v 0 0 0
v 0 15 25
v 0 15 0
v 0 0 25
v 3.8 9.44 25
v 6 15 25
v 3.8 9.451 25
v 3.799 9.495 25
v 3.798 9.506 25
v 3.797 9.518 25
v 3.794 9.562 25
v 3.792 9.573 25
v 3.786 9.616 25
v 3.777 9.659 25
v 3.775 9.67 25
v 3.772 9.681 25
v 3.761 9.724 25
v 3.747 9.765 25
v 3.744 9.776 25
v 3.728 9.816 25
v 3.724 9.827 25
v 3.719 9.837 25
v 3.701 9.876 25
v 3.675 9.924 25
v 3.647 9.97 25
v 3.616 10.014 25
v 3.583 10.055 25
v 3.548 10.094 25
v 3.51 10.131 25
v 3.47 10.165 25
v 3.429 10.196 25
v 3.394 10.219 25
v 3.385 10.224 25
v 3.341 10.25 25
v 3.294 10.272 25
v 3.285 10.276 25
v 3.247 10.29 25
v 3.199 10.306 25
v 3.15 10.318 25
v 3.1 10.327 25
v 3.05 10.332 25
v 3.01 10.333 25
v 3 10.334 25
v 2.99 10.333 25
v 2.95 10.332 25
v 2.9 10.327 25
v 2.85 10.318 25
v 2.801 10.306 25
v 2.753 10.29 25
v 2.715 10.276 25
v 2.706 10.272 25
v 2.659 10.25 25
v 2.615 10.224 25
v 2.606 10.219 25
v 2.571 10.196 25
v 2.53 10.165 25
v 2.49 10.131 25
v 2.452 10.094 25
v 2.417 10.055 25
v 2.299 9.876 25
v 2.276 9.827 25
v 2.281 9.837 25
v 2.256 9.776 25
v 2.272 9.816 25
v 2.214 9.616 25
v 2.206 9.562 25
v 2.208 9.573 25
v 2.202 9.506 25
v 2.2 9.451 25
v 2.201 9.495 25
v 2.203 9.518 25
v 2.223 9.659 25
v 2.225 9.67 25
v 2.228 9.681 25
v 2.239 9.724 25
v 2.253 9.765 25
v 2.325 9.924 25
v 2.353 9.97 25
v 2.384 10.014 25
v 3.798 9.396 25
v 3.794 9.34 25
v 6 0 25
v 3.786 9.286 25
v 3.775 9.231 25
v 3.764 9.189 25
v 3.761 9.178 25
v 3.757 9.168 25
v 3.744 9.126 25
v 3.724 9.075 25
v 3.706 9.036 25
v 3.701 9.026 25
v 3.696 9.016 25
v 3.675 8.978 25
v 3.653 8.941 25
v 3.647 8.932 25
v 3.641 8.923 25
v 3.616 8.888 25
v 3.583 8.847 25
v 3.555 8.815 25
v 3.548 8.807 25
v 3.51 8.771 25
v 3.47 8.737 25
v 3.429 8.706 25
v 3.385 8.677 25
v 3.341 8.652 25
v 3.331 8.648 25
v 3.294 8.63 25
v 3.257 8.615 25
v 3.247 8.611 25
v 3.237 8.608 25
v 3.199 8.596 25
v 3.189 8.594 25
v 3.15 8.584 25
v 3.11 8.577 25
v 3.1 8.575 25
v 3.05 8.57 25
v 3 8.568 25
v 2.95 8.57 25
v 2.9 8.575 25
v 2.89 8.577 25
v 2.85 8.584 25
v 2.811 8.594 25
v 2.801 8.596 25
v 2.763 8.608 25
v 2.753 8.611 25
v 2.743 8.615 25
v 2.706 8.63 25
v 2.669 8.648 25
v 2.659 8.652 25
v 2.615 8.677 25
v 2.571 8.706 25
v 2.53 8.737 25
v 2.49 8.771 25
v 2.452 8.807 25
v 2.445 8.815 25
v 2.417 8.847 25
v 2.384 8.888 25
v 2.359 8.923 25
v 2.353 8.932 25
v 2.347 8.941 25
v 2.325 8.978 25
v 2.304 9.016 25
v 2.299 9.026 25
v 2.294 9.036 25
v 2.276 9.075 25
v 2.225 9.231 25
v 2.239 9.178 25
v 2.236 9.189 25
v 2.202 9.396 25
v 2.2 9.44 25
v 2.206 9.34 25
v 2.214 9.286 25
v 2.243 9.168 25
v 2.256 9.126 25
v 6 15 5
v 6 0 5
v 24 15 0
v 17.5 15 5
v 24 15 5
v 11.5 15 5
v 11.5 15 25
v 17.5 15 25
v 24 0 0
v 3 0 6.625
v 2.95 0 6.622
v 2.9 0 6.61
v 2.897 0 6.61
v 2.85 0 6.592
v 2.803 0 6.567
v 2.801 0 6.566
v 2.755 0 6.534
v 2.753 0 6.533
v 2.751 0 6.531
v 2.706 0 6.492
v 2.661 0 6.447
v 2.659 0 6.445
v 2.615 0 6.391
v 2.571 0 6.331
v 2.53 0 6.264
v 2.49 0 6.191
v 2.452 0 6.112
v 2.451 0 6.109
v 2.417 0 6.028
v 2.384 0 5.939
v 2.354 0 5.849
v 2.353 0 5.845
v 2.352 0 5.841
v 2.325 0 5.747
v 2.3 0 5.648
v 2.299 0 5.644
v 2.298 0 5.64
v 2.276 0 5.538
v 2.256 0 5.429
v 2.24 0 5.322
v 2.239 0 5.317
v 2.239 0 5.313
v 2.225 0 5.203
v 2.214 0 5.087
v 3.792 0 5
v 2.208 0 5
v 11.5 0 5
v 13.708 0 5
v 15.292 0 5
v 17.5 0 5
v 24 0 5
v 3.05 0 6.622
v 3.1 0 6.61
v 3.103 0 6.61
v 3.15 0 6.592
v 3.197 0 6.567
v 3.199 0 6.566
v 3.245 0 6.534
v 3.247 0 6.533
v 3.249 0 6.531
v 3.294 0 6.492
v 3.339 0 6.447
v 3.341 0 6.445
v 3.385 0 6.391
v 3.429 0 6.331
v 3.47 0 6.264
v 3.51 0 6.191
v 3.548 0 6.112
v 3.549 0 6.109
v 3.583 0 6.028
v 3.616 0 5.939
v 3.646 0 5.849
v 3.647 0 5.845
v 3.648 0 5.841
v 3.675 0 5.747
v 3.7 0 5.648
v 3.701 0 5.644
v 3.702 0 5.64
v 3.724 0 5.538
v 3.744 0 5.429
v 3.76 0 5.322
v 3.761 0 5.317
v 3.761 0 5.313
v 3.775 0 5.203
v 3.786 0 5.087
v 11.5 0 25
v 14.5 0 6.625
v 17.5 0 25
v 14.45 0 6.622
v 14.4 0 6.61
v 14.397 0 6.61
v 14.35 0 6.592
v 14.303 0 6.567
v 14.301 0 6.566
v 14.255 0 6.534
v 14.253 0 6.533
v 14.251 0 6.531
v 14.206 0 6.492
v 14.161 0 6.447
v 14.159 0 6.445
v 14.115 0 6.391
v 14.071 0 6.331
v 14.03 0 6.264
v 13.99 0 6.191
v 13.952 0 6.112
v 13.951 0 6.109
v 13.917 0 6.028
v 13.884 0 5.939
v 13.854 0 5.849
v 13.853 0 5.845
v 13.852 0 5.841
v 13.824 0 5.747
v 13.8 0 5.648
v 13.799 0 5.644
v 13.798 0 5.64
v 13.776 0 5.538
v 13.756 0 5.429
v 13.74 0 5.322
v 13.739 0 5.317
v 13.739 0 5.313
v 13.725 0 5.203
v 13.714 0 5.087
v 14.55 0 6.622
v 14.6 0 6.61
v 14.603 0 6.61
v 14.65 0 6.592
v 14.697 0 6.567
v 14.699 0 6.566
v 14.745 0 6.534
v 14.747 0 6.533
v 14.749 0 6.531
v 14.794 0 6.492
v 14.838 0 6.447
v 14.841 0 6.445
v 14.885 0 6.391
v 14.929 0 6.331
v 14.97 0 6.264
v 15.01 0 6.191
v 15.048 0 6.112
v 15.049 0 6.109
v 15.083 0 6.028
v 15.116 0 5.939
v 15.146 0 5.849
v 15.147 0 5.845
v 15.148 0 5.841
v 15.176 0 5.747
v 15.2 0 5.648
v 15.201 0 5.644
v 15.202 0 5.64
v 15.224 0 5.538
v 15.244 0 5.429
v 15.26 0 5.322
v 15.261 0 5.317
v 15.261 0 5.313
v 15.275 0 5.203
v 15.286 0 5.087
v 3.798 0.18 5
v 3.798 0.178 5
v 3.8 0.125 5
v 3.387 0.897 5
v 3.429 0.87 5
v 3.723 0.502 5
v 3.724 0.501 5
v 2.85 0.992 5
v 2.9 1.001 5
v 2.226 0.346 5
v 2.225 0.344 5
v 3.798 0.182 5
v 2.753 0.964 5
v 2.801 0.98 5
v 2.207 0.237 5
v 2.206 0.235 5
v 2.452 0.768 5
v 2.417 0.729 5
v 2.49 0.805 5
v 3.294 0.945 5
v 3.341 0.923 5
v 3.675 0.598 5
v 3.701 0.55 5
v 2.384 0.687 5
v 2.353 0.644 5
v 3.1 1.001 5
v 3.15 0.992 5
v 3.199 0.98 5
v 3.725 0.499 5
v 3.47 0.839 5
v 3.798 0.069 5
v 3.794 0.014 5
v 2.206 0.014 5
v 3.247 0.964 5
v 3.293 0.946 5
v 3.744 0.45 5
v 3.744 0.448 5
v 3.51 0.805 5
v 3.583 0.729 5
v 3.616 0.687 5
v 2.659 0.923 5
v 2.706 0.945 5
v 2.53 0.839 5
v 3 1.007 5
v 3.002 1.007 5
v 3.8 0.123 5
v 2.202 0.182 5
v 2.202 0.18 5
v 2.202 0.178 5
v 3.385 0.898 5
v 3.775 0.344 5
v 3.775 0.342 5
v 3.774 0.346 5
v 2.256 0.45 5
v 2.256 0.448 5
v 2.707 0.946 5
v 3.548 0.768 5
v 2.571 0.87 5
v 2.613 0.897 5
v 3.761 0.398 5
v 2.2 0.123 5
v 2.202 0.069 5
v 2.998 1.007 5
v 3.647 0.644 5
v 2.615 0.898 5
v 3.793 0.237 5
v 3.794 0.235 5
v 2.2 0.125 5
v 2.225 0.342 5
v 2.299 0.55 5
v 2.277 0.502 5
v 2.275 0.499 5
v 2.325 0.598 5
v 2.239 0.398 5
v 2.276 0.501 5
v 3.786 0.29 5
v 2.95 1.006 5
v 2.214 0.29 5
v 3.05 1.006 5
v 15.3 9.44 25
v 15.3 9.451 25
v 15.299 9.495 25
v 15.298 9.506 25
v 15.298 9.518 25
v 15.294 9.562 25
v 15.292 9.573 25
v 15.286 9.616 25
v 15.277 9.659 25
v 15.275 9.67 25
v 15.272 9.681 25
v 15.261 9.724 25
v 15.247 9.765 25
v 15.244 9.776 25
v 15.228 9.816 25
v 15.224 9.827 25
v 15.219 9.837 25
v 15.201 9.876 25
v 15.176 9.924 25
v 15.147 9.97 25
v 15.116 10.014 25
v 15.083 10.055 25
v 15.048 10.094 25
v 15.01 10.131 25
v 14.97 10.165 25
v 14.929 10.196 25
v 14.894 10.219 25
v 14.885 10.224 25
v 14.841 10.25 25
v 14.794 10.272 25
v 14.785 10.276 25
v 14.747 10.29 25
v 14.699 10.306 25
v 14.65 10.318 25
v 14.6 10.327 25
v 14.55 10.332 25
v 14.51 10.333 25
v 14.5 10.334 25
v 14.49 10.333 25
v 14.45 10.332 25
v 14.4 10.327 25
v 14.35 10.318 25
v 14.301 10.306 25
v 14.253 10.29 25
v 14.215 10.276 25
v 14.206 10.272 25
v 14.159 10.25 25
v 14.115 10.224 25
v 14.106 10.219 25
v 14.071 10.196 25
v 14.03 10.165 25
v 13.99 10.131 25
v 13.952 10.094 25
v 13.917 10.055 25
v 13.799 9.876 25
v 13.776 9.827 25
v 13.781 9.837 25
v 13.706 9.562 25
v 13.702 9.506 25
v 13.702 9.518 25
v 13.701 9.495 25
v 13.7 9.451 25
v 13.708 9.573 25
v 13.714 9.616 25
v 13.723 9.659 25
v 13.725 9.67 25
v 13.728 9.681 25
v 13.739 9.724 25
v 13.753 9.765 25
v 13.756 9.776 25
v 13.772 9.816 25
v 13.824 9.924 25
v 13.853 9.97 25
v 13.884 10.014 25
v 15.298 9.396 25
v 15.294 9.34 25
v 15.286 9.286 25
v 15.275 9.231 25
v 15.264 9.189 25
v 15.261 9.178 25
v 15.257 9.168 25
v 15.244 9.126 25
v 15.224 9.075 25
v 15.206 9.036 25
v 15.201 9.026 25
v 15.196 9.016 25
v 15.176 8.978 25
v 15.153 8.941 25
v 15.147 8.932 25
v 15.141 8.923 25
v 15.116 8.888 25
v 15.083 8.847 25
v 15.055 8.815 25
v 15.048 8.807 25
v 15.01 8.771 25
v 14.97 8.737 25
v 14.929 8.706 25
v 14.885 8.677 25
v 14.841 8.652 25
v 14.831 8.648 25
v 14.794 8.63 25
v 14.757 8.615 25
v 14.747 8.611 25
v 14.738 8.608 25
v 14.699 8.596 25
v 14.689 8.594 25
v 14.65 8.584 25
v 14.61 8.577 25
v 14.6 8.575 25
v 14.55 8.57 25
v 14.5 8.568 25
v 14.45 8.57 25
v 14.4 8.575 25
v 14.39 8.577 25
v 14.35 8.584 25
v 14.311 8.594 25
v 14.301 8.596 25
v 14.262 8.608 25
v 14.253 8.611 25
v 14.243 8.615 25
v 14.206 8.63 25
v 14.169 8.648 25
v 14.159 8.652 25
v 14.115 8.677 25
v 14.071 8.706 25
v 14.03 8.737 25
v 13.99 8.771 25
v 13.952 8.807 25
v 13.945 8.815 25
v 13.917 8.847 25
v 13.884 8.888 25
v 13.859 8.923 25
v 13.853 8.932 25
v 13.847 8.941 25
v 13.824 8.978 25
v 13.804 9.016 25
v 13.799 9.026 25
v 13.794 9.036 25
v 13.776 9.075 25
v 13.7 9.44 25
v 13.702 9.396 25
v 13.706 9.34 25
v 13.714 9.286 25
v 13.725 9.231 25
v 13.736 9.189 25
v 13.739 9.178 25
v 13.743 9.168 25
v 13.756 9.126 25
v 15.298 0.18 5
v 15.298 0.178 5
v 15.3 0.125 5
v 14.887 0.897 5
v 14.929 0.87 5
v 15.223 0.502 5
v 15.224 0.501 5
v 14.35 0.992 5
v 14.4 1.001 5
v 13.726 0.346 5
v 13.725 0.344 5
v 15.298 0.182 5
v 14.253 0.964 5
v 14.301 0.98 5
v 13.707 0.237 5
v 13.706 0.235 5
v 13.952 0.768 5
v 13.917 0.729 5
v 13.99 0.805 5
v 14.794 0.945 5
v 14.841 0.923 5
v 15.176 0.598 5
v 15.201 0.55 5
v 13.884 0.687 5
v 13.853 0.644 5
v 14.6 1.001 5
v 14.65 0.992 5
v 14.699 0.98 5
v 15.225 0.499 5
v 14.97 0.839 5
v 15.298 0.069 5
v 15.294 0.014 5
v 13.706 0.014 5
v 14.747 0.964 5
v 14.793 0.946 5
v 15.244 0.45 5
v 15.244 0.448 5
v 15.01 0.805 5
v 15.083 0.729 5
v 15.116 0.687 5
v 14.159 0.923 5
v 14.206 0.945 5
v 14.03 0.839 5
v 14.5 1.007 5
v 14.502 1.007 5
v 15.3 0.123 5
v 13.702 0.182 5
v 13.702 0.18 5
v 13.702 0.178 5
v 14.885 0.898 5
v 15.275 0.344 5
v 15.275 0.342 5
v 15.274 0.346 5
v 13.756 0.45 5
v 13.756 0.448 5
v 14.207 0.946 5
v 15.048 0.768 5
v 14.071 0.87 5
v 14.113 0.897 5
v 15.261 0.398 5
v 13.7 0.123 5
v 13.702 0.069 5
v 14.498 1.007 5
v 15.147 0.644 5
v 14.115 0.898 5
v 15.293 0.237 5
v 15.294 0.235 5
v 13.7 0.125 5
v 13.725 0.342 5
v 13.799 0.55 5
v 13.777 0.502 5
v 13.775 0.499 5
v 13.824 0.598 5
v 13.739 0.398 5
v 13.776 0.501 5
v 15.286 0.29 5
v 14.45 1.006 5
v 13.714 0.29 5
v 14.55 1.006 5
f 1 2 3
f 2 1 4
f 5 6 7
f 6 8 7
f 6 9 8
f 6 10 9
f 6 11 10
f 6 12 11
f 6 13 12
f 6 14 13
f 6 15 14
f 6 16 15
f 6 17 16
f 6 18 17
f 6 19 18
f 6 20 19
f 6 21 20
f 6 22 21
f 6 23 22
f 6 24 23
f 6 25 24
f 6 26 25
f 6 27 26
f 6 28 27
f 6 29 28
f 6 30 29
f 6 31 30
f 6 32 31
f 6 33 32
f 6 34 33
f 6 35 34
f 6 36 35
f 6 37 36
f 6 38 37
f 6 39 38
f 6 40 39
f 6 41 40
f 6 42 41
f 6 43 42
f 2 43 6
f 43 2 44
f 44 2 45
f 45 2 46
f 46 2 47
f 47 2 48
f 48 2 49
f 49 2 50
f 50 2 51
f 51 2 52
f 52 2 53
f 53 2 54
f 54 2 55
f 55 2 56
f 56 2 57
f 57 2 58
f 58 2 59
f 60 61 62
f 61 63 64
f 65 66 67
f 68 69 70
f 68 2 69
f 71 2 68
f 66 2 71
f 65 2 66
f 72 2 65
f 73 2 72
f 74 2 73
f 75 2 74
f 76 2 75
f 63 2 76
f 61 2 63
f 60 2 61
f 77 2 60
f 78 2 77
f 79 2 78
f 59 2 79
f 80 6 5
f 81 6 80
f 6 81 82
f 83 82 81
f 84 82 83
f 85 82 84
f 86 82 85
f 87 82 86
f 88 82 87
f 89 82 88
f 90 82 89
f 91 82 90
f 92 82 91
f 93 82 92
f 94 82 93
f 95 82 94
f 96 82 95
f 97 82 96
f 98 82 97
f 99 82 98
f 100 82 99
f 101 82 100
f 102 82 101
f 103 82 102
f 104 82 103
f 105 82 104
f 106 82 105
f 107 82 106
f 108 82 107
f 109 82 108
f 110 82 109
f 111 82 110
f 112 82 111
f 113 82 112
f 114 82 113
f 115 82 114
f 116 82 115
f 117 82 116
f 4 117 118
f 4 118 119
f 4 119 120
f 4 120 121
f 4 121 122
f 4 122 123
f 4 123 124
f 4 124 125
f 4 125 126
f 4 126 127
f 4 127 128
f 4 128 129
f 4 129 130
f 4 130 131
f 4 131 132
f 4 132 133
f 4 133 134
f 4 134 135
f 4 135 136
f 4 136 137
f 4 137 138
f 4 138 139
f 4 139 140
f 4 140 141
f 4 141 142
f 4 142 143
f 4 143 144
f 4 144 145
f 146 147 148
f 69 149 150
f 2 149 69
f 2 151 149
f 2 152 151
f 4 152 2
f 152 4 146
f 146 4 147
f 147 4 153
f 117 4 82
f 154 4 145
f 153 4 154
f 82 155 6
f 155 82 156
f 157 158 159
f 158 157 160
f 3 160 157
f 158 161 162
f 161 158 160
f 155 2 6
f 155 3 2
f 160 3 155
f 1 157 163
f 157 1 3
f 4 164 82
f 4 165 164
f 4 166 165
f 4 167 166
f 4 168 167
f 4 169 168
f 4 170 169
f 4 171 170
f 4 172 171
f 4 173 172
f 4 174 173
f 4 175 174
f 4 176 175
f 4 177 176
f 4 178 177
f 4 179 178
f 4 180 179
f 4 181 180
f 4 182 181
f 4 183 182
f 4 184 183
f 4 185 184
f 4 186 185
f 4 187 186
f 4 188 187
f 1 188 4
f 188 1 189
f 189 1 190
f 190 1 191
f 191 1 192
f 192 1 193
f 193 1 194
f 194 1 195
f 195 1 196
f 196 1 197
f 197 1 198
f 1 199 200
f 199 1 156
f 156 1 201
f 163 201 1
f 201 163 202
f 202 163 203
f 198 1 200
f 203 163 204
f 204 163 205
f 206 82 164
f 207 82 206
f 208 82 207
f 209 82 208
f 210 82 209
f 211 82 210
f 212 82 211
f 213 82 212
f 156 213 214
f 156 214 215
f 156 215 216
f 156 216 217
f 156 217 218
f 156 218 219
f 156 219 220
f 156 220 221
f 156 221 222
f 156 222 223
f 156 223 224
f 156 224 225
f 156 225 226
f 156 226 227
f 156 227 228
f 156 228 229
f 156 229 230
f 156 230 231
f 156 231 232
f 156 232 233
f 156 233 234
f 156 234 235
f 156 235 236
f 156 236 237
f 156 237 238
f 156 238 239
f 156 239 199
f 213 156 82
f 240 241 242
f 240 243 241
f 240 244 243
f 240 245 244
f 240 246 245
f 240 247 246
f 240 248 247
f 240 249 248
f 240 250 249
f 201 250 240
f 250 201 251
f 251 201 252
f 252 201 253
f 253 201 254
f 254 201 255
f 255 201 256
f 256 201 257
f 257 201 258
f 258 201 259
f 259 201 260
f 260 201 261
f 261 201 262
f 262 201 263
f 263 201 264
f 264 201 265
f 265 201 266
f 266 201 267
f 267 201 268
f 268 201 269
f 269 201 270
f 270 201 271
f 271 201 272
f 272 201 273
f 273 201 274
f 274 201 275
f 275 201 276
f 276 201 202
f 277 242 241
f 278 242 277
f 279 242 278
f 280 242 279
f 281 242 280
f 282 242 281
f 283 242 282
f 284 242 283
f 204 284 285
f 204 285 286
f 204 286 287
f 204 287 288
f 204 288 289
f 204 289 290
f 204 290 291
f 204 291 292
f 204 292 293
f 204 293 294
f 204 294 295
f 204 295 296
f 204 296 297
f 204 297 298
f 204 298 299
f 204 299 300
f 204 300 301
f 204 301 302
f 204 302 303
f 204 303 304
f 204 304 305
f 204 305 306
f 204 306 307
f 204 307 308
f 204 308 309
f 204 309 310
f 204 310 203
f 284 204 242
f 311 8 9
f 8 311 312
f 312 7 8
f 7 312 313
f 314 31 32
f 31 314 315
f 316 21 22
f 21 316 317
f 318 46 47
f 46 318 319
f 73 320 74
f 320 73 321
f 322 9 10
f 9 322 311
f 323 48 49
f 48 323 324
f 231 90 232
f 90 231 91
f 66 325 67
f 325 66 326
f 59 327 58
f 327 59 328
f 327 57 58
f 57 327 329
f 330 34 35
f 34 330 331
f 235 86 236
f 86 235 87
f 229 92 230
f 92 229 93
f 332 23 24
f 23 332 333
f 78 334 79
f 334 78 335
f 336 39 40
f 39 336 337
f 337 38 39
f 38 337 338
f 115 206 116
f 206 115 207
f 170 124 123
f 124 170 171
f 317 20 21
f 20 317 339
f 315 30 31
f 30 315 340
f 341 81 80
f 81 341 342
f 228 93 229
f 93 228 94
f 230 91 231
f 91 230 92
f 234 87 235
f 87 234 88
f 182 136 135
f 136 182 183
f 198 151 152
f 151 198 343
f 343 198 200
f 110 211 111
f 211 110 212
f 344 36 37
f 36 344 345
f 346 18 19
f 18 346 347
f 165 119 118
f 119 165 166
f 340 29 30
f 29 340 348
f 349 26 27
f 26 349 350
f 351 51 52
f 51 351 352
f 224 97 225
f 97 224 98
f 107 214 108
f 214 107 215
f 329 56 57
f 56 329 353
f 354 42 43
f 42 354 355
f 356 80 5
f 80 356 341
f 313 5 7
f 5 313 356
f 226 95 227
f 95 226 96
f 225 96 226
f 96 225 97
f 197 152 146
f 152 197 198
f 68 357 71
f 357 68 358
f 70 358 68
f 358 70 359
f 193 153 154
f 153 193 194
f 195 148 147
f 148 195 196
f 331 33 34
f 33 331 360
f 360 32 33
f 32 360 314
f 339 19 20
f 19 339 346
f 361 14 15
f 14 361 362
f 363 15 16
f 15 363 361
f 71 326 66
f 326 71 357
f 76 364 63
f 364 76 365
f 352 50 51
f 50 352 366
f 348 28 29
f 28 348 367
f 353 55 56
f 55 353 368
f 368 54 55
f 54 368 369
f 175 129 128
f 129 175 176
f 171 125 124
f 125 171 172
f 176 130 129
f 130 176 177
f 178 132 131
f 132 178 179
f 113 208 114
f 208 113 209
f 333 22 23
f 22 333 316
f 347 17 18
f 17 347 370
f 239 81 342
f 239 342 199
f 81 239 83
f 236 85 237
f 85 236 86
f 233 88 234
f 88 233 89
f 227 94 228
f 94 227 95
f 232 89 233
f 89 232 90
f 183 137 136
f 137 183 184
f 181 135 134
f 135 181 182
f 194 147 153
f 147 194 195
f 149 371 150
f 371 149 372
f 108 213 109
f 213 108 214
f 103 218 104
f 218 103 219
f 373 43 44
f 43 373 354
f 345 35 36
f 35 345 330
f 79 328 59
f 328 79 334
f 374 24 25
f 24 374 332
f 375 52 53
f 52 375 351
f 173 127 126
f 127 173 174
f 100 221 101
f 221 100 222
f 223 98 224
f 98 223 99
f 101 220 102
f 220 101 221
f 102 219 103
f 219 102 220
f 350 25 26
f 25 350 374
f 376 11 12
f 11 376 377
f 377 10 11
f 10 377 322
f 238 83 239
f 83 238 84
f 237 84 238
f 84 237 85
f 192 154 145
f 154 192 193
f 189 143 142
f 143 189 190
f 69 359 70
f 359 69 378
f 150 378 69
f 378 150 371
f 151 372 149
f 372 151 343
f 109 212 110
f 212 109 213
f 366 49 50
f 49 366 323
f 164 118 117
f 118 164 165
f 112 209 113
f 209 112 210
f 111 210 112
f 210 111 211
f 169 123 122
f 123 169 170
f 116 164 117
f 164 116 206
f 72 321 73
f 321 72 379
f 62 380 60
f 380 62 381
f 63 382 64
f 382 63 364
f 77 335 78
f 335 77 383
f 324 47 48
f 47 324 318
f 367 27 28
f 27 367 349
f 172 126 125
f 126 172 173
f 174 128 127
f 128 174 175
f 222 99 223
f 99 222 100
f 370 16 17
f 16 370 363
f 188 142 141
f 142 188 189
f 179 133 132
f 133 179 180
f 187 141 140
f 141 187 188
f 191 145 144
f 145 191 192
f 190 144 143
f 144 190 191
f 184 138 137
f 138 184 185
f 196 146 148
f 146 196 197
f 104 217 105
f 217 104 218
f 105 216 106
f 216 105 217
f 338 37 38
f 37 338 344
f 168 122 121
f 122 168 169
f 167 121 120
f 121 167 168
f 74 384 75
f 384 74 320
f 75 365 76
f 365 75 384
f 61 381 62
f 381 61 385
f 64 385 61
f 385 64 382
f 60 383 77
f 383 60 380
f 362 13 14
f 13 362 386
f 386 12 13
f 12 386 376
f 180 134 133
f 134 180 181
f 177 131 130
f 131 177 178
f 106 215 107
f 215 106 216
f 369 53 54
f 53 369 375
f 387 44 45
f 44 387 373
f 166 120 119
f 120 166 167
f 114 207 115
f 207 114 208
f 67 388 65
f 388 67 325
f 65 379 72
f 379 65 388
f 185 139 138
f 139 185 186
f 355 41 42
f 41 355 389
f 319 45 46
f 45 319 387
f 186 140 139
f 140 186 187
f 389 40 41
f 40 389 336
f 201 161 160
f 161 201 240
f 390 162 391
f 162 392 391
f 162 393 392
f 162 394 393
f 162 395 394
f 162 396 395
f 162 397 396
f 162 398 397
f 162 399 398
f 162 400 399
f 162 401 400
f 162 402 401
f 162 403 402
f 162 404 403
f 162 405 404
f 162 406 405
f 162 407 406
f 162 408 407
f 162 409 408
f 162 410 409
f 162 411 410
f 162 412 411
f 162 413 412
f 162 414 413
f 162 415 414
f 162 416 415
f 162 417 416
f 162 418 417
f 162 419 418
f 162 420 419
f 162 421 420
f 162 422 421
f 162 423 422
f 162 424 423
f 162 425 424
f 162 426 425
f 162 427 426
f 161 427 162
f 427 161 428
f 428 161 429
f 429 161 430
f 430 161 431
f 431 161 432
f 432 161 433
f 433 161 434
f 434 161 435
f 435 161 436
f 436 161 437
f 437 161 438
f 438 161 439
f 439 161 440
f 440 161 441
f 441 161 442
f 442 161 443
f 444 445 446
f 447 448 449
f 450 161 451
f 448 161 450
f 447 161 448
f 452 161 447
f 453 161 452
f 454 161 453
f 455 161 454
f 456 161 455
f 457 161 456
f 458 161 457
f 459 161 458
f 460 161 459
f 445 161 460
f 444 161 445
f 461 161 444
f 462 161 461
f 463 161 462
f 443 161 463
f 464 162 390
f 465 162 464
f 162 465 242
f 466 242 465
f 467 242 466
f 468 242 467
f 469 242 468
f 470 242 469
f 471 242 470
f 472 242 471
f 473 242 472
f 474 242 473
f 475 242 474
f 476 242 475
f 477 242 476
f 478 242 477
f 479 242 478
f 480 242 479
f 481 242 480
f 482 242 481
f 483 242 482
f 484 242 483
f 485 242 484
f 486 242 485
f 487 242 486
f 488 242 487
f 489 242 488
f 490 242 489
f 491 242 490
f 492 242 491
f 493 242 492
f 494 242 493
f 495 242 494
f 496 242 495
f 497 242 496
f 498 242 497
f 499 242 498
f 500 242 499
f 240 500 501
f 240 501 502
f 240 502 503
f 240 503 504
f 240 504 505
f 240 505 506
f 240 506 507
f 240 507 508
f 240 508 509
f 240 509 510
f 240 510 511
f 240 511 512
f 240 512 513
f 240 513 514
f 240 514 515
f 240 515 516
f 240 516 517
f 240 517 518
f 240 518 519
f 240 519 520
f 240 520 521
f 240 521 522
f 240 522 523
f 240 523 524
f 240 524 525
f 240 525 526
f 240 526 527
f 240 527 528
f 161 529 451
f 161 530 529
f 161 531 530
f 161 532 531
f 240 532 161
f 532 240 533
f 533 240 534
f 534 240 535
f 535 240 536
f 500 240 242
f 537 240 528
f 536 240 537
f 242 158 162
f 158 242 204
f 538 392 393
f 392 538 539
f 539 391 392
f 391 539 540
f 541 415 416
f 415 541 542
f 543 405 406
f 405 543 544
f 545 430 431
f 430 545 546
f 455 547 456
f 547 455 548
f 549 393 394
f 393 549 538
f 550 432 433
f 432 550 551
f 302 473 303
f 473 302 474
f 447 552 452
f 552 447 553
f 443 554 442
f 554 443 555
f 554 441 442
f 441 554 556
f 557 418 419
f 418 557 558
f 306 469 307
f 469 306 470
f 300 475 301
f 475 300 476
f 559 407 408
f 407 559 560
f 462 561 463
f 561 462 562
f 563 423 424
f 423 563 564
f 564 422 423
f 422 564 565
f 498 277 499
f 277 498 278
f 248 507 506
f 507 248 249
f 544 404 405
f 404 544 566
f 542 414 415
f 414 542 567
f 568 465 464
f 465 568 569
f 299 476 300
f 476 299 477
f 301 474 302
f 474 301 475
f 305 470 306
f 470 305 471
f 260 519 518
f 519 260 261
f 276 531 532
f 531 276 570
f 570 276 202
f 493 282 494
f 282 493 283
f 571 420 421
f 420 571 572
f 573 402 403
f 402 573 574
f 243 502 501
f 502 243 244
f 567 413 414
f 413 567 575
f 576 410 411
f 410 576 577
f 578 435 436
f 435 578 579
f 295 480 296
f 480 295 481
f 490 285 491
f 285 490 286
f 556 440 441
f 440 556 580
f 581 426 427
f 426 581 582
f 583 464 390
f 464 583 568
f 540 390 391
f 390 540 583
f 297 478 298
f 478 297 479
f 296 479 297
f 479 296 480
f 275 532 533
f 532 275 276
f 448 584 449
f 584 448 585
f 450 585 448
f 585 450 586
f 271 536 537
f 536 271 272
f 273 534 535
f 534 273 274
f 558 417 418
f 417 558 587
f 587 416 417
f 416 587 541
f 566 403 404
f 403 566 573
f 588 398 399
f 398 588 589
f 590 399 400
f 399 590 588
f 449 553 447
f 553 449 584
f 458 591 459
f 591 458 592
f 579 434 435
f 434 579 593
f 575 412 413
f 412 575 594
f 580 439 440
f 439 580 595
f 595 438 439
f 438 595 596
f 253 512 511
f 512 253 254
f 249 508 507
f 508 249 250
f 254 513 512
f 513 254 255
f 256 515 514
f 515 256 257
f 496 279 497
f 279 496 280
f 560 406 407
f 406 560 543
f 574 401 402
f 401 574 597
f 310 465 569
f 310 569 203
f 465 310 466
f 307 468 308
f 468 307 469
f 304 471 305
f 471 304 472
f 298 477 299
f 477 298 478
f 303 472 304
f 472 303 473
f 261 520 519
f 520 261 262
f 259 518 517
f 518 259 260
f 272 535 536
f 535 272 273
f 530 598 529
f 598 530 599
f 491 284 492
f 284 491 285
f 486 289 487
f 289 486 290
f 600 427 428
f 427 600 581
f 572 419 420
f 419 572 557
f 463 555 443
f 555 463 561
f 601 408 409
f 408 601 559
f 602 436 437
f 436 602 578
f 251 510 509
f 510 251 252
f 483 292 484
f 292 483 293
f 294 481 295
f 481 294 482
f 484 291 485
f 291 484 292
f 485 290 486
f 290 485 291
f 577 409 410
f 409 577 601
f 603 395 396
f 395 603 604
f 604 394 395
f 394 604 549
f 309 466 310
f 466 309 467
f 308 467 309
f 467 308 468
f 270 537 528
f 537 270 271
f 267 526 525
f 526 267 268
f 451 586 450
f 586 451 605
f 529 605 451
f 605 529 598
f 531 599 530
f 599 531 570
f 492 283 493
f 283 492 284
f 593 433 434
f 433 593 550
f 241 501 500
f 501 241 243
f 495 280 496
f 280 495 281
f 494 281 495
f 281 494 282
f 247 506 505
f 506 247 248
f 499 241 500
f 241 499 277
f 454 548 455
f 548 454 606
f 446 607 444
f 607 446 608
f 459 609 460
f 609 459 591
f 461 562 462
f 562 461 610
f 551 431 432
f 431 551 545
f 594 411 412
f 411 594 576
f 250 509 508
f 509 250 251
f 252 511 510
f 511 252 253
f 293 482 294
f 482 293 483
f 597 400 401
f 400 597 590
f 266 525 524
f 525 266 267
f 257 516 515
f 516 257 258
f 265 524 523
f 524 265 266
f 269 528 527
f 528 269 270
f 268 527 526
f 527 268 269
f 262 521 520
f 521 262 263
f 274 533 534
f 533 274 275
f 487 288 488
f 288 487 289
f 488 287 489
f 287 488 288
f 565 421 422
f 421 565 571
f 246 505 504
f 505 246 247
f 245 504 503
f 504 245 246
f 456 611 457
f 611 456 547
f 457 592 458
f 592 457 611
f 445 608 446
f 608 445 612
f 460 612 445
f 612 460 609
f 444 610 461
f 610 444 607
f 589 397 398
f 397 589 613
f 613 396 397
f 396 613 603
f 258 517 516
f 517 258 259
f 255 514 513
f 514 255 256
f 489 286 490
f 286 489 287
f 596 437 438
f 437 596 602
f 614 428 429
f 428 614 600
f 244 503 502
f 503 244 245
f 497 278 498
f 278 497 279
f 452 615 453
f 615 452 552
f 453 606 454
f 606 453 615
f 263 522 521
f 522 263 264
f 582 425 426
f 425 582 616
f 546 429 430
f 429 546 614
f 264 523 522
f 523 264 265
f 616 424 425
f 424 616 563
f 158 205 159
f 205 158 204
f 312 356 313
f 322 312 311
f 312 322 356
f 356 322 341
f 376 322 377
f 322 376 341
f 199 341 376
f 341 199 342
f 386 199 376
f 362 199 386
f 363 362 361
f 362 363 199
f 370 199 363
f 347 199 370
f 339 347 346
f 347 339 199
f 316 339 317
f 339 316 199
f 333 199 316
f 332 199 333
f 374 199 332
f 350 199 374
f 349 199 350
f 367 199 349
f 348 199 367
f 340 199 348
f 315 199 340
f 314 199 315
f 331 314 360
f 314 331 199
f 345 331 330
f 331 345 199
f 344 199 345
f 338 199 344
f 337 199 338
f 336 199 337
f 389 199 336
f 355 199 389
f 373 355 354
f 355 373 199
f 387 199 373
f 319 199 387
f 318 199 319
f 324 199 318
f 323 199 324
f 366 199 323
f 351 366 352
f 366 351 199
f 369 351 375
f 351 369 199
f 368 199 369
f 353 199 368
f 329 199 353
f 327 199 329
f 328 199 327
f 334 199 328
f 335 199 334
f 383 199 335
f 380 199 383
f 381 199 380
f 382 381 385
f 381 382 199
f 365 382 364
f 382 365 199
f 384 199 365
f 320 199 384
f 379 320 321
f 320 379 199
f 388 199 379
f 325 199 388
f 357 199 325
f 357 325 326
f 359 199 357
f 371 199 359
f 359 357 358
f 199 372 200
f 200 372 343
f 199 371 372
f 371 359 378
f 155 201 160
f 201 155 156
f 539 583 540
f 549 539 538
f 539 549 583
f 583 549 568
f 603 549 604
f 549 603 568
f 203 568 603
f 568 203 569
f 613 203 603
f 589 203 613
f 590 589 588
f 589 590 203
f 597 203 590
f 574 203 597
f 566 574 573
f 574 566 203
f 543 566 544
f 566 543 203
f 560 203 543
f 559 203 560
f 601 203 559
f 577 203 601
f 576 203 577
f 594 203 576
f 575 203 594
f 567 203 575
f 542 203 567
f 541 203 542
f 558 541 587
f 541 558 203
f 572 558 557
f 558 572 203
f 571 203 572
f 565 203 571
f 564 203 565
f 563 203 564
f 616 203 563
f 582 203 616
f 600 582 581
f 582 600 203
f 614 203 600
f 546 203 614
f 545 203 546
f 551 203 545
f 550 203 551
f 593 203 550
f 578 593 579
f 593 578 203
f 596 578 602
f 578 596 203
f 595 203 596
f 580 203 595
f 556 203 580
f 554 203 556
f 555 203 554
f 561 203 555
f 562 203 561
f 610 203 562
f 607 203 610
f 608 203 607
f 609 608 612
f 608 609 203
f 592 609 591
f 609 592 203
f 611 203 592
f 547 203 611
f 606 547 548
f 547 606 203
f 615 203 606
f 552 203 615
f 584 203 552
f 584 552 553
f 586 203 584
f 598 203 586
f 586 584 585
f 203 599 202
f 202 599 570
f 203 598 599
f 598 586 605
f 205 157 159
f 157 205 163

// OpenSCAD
resisitorStand();

module resisitorStand(baseLengthX = 24,
                      baseLengthY = 15,
                      baseLengthZ = 5,
                      
                      towerLengthX = 6,
                      towerLengthY = 15,
                      towerLengthZ = 25)
{
    union()
    {
        base(xLength=baseLengthX,
             yLength=baseLengthY,
             zLength=baseLengthZ);
    
        for ( i = [0 : 1] )
        {
            xIncrement = (towerLengthX/4.0) + 10;
            xTranslate = i * xIncrement;
            translate([xTranslate, 0, 0])
            tower(xLength=towerLengthX,
                  yLength=towerLengthY,
                  zLength=towerLengthZ);            
        }
    }
}

module shaft(xLength, zLength)
{
    cylinder (h = 130, 
              r=0.8, 
              $fn=100
    );    
}

module tower(xLength, yLength, zLength)
{
    difference()
    {
        cube([xLength, yLength, zLength]);
        
        color("blue")
        
        rotate([-25, 0, 0])
        
        translate([xLength/2.0,
                   -2,
                   0])
        
        shaft(xLength, zLength);
    }    
}

module base(xLength, yLength, zLength)
{
    cube([xLength, yLength, zLength]);
}
